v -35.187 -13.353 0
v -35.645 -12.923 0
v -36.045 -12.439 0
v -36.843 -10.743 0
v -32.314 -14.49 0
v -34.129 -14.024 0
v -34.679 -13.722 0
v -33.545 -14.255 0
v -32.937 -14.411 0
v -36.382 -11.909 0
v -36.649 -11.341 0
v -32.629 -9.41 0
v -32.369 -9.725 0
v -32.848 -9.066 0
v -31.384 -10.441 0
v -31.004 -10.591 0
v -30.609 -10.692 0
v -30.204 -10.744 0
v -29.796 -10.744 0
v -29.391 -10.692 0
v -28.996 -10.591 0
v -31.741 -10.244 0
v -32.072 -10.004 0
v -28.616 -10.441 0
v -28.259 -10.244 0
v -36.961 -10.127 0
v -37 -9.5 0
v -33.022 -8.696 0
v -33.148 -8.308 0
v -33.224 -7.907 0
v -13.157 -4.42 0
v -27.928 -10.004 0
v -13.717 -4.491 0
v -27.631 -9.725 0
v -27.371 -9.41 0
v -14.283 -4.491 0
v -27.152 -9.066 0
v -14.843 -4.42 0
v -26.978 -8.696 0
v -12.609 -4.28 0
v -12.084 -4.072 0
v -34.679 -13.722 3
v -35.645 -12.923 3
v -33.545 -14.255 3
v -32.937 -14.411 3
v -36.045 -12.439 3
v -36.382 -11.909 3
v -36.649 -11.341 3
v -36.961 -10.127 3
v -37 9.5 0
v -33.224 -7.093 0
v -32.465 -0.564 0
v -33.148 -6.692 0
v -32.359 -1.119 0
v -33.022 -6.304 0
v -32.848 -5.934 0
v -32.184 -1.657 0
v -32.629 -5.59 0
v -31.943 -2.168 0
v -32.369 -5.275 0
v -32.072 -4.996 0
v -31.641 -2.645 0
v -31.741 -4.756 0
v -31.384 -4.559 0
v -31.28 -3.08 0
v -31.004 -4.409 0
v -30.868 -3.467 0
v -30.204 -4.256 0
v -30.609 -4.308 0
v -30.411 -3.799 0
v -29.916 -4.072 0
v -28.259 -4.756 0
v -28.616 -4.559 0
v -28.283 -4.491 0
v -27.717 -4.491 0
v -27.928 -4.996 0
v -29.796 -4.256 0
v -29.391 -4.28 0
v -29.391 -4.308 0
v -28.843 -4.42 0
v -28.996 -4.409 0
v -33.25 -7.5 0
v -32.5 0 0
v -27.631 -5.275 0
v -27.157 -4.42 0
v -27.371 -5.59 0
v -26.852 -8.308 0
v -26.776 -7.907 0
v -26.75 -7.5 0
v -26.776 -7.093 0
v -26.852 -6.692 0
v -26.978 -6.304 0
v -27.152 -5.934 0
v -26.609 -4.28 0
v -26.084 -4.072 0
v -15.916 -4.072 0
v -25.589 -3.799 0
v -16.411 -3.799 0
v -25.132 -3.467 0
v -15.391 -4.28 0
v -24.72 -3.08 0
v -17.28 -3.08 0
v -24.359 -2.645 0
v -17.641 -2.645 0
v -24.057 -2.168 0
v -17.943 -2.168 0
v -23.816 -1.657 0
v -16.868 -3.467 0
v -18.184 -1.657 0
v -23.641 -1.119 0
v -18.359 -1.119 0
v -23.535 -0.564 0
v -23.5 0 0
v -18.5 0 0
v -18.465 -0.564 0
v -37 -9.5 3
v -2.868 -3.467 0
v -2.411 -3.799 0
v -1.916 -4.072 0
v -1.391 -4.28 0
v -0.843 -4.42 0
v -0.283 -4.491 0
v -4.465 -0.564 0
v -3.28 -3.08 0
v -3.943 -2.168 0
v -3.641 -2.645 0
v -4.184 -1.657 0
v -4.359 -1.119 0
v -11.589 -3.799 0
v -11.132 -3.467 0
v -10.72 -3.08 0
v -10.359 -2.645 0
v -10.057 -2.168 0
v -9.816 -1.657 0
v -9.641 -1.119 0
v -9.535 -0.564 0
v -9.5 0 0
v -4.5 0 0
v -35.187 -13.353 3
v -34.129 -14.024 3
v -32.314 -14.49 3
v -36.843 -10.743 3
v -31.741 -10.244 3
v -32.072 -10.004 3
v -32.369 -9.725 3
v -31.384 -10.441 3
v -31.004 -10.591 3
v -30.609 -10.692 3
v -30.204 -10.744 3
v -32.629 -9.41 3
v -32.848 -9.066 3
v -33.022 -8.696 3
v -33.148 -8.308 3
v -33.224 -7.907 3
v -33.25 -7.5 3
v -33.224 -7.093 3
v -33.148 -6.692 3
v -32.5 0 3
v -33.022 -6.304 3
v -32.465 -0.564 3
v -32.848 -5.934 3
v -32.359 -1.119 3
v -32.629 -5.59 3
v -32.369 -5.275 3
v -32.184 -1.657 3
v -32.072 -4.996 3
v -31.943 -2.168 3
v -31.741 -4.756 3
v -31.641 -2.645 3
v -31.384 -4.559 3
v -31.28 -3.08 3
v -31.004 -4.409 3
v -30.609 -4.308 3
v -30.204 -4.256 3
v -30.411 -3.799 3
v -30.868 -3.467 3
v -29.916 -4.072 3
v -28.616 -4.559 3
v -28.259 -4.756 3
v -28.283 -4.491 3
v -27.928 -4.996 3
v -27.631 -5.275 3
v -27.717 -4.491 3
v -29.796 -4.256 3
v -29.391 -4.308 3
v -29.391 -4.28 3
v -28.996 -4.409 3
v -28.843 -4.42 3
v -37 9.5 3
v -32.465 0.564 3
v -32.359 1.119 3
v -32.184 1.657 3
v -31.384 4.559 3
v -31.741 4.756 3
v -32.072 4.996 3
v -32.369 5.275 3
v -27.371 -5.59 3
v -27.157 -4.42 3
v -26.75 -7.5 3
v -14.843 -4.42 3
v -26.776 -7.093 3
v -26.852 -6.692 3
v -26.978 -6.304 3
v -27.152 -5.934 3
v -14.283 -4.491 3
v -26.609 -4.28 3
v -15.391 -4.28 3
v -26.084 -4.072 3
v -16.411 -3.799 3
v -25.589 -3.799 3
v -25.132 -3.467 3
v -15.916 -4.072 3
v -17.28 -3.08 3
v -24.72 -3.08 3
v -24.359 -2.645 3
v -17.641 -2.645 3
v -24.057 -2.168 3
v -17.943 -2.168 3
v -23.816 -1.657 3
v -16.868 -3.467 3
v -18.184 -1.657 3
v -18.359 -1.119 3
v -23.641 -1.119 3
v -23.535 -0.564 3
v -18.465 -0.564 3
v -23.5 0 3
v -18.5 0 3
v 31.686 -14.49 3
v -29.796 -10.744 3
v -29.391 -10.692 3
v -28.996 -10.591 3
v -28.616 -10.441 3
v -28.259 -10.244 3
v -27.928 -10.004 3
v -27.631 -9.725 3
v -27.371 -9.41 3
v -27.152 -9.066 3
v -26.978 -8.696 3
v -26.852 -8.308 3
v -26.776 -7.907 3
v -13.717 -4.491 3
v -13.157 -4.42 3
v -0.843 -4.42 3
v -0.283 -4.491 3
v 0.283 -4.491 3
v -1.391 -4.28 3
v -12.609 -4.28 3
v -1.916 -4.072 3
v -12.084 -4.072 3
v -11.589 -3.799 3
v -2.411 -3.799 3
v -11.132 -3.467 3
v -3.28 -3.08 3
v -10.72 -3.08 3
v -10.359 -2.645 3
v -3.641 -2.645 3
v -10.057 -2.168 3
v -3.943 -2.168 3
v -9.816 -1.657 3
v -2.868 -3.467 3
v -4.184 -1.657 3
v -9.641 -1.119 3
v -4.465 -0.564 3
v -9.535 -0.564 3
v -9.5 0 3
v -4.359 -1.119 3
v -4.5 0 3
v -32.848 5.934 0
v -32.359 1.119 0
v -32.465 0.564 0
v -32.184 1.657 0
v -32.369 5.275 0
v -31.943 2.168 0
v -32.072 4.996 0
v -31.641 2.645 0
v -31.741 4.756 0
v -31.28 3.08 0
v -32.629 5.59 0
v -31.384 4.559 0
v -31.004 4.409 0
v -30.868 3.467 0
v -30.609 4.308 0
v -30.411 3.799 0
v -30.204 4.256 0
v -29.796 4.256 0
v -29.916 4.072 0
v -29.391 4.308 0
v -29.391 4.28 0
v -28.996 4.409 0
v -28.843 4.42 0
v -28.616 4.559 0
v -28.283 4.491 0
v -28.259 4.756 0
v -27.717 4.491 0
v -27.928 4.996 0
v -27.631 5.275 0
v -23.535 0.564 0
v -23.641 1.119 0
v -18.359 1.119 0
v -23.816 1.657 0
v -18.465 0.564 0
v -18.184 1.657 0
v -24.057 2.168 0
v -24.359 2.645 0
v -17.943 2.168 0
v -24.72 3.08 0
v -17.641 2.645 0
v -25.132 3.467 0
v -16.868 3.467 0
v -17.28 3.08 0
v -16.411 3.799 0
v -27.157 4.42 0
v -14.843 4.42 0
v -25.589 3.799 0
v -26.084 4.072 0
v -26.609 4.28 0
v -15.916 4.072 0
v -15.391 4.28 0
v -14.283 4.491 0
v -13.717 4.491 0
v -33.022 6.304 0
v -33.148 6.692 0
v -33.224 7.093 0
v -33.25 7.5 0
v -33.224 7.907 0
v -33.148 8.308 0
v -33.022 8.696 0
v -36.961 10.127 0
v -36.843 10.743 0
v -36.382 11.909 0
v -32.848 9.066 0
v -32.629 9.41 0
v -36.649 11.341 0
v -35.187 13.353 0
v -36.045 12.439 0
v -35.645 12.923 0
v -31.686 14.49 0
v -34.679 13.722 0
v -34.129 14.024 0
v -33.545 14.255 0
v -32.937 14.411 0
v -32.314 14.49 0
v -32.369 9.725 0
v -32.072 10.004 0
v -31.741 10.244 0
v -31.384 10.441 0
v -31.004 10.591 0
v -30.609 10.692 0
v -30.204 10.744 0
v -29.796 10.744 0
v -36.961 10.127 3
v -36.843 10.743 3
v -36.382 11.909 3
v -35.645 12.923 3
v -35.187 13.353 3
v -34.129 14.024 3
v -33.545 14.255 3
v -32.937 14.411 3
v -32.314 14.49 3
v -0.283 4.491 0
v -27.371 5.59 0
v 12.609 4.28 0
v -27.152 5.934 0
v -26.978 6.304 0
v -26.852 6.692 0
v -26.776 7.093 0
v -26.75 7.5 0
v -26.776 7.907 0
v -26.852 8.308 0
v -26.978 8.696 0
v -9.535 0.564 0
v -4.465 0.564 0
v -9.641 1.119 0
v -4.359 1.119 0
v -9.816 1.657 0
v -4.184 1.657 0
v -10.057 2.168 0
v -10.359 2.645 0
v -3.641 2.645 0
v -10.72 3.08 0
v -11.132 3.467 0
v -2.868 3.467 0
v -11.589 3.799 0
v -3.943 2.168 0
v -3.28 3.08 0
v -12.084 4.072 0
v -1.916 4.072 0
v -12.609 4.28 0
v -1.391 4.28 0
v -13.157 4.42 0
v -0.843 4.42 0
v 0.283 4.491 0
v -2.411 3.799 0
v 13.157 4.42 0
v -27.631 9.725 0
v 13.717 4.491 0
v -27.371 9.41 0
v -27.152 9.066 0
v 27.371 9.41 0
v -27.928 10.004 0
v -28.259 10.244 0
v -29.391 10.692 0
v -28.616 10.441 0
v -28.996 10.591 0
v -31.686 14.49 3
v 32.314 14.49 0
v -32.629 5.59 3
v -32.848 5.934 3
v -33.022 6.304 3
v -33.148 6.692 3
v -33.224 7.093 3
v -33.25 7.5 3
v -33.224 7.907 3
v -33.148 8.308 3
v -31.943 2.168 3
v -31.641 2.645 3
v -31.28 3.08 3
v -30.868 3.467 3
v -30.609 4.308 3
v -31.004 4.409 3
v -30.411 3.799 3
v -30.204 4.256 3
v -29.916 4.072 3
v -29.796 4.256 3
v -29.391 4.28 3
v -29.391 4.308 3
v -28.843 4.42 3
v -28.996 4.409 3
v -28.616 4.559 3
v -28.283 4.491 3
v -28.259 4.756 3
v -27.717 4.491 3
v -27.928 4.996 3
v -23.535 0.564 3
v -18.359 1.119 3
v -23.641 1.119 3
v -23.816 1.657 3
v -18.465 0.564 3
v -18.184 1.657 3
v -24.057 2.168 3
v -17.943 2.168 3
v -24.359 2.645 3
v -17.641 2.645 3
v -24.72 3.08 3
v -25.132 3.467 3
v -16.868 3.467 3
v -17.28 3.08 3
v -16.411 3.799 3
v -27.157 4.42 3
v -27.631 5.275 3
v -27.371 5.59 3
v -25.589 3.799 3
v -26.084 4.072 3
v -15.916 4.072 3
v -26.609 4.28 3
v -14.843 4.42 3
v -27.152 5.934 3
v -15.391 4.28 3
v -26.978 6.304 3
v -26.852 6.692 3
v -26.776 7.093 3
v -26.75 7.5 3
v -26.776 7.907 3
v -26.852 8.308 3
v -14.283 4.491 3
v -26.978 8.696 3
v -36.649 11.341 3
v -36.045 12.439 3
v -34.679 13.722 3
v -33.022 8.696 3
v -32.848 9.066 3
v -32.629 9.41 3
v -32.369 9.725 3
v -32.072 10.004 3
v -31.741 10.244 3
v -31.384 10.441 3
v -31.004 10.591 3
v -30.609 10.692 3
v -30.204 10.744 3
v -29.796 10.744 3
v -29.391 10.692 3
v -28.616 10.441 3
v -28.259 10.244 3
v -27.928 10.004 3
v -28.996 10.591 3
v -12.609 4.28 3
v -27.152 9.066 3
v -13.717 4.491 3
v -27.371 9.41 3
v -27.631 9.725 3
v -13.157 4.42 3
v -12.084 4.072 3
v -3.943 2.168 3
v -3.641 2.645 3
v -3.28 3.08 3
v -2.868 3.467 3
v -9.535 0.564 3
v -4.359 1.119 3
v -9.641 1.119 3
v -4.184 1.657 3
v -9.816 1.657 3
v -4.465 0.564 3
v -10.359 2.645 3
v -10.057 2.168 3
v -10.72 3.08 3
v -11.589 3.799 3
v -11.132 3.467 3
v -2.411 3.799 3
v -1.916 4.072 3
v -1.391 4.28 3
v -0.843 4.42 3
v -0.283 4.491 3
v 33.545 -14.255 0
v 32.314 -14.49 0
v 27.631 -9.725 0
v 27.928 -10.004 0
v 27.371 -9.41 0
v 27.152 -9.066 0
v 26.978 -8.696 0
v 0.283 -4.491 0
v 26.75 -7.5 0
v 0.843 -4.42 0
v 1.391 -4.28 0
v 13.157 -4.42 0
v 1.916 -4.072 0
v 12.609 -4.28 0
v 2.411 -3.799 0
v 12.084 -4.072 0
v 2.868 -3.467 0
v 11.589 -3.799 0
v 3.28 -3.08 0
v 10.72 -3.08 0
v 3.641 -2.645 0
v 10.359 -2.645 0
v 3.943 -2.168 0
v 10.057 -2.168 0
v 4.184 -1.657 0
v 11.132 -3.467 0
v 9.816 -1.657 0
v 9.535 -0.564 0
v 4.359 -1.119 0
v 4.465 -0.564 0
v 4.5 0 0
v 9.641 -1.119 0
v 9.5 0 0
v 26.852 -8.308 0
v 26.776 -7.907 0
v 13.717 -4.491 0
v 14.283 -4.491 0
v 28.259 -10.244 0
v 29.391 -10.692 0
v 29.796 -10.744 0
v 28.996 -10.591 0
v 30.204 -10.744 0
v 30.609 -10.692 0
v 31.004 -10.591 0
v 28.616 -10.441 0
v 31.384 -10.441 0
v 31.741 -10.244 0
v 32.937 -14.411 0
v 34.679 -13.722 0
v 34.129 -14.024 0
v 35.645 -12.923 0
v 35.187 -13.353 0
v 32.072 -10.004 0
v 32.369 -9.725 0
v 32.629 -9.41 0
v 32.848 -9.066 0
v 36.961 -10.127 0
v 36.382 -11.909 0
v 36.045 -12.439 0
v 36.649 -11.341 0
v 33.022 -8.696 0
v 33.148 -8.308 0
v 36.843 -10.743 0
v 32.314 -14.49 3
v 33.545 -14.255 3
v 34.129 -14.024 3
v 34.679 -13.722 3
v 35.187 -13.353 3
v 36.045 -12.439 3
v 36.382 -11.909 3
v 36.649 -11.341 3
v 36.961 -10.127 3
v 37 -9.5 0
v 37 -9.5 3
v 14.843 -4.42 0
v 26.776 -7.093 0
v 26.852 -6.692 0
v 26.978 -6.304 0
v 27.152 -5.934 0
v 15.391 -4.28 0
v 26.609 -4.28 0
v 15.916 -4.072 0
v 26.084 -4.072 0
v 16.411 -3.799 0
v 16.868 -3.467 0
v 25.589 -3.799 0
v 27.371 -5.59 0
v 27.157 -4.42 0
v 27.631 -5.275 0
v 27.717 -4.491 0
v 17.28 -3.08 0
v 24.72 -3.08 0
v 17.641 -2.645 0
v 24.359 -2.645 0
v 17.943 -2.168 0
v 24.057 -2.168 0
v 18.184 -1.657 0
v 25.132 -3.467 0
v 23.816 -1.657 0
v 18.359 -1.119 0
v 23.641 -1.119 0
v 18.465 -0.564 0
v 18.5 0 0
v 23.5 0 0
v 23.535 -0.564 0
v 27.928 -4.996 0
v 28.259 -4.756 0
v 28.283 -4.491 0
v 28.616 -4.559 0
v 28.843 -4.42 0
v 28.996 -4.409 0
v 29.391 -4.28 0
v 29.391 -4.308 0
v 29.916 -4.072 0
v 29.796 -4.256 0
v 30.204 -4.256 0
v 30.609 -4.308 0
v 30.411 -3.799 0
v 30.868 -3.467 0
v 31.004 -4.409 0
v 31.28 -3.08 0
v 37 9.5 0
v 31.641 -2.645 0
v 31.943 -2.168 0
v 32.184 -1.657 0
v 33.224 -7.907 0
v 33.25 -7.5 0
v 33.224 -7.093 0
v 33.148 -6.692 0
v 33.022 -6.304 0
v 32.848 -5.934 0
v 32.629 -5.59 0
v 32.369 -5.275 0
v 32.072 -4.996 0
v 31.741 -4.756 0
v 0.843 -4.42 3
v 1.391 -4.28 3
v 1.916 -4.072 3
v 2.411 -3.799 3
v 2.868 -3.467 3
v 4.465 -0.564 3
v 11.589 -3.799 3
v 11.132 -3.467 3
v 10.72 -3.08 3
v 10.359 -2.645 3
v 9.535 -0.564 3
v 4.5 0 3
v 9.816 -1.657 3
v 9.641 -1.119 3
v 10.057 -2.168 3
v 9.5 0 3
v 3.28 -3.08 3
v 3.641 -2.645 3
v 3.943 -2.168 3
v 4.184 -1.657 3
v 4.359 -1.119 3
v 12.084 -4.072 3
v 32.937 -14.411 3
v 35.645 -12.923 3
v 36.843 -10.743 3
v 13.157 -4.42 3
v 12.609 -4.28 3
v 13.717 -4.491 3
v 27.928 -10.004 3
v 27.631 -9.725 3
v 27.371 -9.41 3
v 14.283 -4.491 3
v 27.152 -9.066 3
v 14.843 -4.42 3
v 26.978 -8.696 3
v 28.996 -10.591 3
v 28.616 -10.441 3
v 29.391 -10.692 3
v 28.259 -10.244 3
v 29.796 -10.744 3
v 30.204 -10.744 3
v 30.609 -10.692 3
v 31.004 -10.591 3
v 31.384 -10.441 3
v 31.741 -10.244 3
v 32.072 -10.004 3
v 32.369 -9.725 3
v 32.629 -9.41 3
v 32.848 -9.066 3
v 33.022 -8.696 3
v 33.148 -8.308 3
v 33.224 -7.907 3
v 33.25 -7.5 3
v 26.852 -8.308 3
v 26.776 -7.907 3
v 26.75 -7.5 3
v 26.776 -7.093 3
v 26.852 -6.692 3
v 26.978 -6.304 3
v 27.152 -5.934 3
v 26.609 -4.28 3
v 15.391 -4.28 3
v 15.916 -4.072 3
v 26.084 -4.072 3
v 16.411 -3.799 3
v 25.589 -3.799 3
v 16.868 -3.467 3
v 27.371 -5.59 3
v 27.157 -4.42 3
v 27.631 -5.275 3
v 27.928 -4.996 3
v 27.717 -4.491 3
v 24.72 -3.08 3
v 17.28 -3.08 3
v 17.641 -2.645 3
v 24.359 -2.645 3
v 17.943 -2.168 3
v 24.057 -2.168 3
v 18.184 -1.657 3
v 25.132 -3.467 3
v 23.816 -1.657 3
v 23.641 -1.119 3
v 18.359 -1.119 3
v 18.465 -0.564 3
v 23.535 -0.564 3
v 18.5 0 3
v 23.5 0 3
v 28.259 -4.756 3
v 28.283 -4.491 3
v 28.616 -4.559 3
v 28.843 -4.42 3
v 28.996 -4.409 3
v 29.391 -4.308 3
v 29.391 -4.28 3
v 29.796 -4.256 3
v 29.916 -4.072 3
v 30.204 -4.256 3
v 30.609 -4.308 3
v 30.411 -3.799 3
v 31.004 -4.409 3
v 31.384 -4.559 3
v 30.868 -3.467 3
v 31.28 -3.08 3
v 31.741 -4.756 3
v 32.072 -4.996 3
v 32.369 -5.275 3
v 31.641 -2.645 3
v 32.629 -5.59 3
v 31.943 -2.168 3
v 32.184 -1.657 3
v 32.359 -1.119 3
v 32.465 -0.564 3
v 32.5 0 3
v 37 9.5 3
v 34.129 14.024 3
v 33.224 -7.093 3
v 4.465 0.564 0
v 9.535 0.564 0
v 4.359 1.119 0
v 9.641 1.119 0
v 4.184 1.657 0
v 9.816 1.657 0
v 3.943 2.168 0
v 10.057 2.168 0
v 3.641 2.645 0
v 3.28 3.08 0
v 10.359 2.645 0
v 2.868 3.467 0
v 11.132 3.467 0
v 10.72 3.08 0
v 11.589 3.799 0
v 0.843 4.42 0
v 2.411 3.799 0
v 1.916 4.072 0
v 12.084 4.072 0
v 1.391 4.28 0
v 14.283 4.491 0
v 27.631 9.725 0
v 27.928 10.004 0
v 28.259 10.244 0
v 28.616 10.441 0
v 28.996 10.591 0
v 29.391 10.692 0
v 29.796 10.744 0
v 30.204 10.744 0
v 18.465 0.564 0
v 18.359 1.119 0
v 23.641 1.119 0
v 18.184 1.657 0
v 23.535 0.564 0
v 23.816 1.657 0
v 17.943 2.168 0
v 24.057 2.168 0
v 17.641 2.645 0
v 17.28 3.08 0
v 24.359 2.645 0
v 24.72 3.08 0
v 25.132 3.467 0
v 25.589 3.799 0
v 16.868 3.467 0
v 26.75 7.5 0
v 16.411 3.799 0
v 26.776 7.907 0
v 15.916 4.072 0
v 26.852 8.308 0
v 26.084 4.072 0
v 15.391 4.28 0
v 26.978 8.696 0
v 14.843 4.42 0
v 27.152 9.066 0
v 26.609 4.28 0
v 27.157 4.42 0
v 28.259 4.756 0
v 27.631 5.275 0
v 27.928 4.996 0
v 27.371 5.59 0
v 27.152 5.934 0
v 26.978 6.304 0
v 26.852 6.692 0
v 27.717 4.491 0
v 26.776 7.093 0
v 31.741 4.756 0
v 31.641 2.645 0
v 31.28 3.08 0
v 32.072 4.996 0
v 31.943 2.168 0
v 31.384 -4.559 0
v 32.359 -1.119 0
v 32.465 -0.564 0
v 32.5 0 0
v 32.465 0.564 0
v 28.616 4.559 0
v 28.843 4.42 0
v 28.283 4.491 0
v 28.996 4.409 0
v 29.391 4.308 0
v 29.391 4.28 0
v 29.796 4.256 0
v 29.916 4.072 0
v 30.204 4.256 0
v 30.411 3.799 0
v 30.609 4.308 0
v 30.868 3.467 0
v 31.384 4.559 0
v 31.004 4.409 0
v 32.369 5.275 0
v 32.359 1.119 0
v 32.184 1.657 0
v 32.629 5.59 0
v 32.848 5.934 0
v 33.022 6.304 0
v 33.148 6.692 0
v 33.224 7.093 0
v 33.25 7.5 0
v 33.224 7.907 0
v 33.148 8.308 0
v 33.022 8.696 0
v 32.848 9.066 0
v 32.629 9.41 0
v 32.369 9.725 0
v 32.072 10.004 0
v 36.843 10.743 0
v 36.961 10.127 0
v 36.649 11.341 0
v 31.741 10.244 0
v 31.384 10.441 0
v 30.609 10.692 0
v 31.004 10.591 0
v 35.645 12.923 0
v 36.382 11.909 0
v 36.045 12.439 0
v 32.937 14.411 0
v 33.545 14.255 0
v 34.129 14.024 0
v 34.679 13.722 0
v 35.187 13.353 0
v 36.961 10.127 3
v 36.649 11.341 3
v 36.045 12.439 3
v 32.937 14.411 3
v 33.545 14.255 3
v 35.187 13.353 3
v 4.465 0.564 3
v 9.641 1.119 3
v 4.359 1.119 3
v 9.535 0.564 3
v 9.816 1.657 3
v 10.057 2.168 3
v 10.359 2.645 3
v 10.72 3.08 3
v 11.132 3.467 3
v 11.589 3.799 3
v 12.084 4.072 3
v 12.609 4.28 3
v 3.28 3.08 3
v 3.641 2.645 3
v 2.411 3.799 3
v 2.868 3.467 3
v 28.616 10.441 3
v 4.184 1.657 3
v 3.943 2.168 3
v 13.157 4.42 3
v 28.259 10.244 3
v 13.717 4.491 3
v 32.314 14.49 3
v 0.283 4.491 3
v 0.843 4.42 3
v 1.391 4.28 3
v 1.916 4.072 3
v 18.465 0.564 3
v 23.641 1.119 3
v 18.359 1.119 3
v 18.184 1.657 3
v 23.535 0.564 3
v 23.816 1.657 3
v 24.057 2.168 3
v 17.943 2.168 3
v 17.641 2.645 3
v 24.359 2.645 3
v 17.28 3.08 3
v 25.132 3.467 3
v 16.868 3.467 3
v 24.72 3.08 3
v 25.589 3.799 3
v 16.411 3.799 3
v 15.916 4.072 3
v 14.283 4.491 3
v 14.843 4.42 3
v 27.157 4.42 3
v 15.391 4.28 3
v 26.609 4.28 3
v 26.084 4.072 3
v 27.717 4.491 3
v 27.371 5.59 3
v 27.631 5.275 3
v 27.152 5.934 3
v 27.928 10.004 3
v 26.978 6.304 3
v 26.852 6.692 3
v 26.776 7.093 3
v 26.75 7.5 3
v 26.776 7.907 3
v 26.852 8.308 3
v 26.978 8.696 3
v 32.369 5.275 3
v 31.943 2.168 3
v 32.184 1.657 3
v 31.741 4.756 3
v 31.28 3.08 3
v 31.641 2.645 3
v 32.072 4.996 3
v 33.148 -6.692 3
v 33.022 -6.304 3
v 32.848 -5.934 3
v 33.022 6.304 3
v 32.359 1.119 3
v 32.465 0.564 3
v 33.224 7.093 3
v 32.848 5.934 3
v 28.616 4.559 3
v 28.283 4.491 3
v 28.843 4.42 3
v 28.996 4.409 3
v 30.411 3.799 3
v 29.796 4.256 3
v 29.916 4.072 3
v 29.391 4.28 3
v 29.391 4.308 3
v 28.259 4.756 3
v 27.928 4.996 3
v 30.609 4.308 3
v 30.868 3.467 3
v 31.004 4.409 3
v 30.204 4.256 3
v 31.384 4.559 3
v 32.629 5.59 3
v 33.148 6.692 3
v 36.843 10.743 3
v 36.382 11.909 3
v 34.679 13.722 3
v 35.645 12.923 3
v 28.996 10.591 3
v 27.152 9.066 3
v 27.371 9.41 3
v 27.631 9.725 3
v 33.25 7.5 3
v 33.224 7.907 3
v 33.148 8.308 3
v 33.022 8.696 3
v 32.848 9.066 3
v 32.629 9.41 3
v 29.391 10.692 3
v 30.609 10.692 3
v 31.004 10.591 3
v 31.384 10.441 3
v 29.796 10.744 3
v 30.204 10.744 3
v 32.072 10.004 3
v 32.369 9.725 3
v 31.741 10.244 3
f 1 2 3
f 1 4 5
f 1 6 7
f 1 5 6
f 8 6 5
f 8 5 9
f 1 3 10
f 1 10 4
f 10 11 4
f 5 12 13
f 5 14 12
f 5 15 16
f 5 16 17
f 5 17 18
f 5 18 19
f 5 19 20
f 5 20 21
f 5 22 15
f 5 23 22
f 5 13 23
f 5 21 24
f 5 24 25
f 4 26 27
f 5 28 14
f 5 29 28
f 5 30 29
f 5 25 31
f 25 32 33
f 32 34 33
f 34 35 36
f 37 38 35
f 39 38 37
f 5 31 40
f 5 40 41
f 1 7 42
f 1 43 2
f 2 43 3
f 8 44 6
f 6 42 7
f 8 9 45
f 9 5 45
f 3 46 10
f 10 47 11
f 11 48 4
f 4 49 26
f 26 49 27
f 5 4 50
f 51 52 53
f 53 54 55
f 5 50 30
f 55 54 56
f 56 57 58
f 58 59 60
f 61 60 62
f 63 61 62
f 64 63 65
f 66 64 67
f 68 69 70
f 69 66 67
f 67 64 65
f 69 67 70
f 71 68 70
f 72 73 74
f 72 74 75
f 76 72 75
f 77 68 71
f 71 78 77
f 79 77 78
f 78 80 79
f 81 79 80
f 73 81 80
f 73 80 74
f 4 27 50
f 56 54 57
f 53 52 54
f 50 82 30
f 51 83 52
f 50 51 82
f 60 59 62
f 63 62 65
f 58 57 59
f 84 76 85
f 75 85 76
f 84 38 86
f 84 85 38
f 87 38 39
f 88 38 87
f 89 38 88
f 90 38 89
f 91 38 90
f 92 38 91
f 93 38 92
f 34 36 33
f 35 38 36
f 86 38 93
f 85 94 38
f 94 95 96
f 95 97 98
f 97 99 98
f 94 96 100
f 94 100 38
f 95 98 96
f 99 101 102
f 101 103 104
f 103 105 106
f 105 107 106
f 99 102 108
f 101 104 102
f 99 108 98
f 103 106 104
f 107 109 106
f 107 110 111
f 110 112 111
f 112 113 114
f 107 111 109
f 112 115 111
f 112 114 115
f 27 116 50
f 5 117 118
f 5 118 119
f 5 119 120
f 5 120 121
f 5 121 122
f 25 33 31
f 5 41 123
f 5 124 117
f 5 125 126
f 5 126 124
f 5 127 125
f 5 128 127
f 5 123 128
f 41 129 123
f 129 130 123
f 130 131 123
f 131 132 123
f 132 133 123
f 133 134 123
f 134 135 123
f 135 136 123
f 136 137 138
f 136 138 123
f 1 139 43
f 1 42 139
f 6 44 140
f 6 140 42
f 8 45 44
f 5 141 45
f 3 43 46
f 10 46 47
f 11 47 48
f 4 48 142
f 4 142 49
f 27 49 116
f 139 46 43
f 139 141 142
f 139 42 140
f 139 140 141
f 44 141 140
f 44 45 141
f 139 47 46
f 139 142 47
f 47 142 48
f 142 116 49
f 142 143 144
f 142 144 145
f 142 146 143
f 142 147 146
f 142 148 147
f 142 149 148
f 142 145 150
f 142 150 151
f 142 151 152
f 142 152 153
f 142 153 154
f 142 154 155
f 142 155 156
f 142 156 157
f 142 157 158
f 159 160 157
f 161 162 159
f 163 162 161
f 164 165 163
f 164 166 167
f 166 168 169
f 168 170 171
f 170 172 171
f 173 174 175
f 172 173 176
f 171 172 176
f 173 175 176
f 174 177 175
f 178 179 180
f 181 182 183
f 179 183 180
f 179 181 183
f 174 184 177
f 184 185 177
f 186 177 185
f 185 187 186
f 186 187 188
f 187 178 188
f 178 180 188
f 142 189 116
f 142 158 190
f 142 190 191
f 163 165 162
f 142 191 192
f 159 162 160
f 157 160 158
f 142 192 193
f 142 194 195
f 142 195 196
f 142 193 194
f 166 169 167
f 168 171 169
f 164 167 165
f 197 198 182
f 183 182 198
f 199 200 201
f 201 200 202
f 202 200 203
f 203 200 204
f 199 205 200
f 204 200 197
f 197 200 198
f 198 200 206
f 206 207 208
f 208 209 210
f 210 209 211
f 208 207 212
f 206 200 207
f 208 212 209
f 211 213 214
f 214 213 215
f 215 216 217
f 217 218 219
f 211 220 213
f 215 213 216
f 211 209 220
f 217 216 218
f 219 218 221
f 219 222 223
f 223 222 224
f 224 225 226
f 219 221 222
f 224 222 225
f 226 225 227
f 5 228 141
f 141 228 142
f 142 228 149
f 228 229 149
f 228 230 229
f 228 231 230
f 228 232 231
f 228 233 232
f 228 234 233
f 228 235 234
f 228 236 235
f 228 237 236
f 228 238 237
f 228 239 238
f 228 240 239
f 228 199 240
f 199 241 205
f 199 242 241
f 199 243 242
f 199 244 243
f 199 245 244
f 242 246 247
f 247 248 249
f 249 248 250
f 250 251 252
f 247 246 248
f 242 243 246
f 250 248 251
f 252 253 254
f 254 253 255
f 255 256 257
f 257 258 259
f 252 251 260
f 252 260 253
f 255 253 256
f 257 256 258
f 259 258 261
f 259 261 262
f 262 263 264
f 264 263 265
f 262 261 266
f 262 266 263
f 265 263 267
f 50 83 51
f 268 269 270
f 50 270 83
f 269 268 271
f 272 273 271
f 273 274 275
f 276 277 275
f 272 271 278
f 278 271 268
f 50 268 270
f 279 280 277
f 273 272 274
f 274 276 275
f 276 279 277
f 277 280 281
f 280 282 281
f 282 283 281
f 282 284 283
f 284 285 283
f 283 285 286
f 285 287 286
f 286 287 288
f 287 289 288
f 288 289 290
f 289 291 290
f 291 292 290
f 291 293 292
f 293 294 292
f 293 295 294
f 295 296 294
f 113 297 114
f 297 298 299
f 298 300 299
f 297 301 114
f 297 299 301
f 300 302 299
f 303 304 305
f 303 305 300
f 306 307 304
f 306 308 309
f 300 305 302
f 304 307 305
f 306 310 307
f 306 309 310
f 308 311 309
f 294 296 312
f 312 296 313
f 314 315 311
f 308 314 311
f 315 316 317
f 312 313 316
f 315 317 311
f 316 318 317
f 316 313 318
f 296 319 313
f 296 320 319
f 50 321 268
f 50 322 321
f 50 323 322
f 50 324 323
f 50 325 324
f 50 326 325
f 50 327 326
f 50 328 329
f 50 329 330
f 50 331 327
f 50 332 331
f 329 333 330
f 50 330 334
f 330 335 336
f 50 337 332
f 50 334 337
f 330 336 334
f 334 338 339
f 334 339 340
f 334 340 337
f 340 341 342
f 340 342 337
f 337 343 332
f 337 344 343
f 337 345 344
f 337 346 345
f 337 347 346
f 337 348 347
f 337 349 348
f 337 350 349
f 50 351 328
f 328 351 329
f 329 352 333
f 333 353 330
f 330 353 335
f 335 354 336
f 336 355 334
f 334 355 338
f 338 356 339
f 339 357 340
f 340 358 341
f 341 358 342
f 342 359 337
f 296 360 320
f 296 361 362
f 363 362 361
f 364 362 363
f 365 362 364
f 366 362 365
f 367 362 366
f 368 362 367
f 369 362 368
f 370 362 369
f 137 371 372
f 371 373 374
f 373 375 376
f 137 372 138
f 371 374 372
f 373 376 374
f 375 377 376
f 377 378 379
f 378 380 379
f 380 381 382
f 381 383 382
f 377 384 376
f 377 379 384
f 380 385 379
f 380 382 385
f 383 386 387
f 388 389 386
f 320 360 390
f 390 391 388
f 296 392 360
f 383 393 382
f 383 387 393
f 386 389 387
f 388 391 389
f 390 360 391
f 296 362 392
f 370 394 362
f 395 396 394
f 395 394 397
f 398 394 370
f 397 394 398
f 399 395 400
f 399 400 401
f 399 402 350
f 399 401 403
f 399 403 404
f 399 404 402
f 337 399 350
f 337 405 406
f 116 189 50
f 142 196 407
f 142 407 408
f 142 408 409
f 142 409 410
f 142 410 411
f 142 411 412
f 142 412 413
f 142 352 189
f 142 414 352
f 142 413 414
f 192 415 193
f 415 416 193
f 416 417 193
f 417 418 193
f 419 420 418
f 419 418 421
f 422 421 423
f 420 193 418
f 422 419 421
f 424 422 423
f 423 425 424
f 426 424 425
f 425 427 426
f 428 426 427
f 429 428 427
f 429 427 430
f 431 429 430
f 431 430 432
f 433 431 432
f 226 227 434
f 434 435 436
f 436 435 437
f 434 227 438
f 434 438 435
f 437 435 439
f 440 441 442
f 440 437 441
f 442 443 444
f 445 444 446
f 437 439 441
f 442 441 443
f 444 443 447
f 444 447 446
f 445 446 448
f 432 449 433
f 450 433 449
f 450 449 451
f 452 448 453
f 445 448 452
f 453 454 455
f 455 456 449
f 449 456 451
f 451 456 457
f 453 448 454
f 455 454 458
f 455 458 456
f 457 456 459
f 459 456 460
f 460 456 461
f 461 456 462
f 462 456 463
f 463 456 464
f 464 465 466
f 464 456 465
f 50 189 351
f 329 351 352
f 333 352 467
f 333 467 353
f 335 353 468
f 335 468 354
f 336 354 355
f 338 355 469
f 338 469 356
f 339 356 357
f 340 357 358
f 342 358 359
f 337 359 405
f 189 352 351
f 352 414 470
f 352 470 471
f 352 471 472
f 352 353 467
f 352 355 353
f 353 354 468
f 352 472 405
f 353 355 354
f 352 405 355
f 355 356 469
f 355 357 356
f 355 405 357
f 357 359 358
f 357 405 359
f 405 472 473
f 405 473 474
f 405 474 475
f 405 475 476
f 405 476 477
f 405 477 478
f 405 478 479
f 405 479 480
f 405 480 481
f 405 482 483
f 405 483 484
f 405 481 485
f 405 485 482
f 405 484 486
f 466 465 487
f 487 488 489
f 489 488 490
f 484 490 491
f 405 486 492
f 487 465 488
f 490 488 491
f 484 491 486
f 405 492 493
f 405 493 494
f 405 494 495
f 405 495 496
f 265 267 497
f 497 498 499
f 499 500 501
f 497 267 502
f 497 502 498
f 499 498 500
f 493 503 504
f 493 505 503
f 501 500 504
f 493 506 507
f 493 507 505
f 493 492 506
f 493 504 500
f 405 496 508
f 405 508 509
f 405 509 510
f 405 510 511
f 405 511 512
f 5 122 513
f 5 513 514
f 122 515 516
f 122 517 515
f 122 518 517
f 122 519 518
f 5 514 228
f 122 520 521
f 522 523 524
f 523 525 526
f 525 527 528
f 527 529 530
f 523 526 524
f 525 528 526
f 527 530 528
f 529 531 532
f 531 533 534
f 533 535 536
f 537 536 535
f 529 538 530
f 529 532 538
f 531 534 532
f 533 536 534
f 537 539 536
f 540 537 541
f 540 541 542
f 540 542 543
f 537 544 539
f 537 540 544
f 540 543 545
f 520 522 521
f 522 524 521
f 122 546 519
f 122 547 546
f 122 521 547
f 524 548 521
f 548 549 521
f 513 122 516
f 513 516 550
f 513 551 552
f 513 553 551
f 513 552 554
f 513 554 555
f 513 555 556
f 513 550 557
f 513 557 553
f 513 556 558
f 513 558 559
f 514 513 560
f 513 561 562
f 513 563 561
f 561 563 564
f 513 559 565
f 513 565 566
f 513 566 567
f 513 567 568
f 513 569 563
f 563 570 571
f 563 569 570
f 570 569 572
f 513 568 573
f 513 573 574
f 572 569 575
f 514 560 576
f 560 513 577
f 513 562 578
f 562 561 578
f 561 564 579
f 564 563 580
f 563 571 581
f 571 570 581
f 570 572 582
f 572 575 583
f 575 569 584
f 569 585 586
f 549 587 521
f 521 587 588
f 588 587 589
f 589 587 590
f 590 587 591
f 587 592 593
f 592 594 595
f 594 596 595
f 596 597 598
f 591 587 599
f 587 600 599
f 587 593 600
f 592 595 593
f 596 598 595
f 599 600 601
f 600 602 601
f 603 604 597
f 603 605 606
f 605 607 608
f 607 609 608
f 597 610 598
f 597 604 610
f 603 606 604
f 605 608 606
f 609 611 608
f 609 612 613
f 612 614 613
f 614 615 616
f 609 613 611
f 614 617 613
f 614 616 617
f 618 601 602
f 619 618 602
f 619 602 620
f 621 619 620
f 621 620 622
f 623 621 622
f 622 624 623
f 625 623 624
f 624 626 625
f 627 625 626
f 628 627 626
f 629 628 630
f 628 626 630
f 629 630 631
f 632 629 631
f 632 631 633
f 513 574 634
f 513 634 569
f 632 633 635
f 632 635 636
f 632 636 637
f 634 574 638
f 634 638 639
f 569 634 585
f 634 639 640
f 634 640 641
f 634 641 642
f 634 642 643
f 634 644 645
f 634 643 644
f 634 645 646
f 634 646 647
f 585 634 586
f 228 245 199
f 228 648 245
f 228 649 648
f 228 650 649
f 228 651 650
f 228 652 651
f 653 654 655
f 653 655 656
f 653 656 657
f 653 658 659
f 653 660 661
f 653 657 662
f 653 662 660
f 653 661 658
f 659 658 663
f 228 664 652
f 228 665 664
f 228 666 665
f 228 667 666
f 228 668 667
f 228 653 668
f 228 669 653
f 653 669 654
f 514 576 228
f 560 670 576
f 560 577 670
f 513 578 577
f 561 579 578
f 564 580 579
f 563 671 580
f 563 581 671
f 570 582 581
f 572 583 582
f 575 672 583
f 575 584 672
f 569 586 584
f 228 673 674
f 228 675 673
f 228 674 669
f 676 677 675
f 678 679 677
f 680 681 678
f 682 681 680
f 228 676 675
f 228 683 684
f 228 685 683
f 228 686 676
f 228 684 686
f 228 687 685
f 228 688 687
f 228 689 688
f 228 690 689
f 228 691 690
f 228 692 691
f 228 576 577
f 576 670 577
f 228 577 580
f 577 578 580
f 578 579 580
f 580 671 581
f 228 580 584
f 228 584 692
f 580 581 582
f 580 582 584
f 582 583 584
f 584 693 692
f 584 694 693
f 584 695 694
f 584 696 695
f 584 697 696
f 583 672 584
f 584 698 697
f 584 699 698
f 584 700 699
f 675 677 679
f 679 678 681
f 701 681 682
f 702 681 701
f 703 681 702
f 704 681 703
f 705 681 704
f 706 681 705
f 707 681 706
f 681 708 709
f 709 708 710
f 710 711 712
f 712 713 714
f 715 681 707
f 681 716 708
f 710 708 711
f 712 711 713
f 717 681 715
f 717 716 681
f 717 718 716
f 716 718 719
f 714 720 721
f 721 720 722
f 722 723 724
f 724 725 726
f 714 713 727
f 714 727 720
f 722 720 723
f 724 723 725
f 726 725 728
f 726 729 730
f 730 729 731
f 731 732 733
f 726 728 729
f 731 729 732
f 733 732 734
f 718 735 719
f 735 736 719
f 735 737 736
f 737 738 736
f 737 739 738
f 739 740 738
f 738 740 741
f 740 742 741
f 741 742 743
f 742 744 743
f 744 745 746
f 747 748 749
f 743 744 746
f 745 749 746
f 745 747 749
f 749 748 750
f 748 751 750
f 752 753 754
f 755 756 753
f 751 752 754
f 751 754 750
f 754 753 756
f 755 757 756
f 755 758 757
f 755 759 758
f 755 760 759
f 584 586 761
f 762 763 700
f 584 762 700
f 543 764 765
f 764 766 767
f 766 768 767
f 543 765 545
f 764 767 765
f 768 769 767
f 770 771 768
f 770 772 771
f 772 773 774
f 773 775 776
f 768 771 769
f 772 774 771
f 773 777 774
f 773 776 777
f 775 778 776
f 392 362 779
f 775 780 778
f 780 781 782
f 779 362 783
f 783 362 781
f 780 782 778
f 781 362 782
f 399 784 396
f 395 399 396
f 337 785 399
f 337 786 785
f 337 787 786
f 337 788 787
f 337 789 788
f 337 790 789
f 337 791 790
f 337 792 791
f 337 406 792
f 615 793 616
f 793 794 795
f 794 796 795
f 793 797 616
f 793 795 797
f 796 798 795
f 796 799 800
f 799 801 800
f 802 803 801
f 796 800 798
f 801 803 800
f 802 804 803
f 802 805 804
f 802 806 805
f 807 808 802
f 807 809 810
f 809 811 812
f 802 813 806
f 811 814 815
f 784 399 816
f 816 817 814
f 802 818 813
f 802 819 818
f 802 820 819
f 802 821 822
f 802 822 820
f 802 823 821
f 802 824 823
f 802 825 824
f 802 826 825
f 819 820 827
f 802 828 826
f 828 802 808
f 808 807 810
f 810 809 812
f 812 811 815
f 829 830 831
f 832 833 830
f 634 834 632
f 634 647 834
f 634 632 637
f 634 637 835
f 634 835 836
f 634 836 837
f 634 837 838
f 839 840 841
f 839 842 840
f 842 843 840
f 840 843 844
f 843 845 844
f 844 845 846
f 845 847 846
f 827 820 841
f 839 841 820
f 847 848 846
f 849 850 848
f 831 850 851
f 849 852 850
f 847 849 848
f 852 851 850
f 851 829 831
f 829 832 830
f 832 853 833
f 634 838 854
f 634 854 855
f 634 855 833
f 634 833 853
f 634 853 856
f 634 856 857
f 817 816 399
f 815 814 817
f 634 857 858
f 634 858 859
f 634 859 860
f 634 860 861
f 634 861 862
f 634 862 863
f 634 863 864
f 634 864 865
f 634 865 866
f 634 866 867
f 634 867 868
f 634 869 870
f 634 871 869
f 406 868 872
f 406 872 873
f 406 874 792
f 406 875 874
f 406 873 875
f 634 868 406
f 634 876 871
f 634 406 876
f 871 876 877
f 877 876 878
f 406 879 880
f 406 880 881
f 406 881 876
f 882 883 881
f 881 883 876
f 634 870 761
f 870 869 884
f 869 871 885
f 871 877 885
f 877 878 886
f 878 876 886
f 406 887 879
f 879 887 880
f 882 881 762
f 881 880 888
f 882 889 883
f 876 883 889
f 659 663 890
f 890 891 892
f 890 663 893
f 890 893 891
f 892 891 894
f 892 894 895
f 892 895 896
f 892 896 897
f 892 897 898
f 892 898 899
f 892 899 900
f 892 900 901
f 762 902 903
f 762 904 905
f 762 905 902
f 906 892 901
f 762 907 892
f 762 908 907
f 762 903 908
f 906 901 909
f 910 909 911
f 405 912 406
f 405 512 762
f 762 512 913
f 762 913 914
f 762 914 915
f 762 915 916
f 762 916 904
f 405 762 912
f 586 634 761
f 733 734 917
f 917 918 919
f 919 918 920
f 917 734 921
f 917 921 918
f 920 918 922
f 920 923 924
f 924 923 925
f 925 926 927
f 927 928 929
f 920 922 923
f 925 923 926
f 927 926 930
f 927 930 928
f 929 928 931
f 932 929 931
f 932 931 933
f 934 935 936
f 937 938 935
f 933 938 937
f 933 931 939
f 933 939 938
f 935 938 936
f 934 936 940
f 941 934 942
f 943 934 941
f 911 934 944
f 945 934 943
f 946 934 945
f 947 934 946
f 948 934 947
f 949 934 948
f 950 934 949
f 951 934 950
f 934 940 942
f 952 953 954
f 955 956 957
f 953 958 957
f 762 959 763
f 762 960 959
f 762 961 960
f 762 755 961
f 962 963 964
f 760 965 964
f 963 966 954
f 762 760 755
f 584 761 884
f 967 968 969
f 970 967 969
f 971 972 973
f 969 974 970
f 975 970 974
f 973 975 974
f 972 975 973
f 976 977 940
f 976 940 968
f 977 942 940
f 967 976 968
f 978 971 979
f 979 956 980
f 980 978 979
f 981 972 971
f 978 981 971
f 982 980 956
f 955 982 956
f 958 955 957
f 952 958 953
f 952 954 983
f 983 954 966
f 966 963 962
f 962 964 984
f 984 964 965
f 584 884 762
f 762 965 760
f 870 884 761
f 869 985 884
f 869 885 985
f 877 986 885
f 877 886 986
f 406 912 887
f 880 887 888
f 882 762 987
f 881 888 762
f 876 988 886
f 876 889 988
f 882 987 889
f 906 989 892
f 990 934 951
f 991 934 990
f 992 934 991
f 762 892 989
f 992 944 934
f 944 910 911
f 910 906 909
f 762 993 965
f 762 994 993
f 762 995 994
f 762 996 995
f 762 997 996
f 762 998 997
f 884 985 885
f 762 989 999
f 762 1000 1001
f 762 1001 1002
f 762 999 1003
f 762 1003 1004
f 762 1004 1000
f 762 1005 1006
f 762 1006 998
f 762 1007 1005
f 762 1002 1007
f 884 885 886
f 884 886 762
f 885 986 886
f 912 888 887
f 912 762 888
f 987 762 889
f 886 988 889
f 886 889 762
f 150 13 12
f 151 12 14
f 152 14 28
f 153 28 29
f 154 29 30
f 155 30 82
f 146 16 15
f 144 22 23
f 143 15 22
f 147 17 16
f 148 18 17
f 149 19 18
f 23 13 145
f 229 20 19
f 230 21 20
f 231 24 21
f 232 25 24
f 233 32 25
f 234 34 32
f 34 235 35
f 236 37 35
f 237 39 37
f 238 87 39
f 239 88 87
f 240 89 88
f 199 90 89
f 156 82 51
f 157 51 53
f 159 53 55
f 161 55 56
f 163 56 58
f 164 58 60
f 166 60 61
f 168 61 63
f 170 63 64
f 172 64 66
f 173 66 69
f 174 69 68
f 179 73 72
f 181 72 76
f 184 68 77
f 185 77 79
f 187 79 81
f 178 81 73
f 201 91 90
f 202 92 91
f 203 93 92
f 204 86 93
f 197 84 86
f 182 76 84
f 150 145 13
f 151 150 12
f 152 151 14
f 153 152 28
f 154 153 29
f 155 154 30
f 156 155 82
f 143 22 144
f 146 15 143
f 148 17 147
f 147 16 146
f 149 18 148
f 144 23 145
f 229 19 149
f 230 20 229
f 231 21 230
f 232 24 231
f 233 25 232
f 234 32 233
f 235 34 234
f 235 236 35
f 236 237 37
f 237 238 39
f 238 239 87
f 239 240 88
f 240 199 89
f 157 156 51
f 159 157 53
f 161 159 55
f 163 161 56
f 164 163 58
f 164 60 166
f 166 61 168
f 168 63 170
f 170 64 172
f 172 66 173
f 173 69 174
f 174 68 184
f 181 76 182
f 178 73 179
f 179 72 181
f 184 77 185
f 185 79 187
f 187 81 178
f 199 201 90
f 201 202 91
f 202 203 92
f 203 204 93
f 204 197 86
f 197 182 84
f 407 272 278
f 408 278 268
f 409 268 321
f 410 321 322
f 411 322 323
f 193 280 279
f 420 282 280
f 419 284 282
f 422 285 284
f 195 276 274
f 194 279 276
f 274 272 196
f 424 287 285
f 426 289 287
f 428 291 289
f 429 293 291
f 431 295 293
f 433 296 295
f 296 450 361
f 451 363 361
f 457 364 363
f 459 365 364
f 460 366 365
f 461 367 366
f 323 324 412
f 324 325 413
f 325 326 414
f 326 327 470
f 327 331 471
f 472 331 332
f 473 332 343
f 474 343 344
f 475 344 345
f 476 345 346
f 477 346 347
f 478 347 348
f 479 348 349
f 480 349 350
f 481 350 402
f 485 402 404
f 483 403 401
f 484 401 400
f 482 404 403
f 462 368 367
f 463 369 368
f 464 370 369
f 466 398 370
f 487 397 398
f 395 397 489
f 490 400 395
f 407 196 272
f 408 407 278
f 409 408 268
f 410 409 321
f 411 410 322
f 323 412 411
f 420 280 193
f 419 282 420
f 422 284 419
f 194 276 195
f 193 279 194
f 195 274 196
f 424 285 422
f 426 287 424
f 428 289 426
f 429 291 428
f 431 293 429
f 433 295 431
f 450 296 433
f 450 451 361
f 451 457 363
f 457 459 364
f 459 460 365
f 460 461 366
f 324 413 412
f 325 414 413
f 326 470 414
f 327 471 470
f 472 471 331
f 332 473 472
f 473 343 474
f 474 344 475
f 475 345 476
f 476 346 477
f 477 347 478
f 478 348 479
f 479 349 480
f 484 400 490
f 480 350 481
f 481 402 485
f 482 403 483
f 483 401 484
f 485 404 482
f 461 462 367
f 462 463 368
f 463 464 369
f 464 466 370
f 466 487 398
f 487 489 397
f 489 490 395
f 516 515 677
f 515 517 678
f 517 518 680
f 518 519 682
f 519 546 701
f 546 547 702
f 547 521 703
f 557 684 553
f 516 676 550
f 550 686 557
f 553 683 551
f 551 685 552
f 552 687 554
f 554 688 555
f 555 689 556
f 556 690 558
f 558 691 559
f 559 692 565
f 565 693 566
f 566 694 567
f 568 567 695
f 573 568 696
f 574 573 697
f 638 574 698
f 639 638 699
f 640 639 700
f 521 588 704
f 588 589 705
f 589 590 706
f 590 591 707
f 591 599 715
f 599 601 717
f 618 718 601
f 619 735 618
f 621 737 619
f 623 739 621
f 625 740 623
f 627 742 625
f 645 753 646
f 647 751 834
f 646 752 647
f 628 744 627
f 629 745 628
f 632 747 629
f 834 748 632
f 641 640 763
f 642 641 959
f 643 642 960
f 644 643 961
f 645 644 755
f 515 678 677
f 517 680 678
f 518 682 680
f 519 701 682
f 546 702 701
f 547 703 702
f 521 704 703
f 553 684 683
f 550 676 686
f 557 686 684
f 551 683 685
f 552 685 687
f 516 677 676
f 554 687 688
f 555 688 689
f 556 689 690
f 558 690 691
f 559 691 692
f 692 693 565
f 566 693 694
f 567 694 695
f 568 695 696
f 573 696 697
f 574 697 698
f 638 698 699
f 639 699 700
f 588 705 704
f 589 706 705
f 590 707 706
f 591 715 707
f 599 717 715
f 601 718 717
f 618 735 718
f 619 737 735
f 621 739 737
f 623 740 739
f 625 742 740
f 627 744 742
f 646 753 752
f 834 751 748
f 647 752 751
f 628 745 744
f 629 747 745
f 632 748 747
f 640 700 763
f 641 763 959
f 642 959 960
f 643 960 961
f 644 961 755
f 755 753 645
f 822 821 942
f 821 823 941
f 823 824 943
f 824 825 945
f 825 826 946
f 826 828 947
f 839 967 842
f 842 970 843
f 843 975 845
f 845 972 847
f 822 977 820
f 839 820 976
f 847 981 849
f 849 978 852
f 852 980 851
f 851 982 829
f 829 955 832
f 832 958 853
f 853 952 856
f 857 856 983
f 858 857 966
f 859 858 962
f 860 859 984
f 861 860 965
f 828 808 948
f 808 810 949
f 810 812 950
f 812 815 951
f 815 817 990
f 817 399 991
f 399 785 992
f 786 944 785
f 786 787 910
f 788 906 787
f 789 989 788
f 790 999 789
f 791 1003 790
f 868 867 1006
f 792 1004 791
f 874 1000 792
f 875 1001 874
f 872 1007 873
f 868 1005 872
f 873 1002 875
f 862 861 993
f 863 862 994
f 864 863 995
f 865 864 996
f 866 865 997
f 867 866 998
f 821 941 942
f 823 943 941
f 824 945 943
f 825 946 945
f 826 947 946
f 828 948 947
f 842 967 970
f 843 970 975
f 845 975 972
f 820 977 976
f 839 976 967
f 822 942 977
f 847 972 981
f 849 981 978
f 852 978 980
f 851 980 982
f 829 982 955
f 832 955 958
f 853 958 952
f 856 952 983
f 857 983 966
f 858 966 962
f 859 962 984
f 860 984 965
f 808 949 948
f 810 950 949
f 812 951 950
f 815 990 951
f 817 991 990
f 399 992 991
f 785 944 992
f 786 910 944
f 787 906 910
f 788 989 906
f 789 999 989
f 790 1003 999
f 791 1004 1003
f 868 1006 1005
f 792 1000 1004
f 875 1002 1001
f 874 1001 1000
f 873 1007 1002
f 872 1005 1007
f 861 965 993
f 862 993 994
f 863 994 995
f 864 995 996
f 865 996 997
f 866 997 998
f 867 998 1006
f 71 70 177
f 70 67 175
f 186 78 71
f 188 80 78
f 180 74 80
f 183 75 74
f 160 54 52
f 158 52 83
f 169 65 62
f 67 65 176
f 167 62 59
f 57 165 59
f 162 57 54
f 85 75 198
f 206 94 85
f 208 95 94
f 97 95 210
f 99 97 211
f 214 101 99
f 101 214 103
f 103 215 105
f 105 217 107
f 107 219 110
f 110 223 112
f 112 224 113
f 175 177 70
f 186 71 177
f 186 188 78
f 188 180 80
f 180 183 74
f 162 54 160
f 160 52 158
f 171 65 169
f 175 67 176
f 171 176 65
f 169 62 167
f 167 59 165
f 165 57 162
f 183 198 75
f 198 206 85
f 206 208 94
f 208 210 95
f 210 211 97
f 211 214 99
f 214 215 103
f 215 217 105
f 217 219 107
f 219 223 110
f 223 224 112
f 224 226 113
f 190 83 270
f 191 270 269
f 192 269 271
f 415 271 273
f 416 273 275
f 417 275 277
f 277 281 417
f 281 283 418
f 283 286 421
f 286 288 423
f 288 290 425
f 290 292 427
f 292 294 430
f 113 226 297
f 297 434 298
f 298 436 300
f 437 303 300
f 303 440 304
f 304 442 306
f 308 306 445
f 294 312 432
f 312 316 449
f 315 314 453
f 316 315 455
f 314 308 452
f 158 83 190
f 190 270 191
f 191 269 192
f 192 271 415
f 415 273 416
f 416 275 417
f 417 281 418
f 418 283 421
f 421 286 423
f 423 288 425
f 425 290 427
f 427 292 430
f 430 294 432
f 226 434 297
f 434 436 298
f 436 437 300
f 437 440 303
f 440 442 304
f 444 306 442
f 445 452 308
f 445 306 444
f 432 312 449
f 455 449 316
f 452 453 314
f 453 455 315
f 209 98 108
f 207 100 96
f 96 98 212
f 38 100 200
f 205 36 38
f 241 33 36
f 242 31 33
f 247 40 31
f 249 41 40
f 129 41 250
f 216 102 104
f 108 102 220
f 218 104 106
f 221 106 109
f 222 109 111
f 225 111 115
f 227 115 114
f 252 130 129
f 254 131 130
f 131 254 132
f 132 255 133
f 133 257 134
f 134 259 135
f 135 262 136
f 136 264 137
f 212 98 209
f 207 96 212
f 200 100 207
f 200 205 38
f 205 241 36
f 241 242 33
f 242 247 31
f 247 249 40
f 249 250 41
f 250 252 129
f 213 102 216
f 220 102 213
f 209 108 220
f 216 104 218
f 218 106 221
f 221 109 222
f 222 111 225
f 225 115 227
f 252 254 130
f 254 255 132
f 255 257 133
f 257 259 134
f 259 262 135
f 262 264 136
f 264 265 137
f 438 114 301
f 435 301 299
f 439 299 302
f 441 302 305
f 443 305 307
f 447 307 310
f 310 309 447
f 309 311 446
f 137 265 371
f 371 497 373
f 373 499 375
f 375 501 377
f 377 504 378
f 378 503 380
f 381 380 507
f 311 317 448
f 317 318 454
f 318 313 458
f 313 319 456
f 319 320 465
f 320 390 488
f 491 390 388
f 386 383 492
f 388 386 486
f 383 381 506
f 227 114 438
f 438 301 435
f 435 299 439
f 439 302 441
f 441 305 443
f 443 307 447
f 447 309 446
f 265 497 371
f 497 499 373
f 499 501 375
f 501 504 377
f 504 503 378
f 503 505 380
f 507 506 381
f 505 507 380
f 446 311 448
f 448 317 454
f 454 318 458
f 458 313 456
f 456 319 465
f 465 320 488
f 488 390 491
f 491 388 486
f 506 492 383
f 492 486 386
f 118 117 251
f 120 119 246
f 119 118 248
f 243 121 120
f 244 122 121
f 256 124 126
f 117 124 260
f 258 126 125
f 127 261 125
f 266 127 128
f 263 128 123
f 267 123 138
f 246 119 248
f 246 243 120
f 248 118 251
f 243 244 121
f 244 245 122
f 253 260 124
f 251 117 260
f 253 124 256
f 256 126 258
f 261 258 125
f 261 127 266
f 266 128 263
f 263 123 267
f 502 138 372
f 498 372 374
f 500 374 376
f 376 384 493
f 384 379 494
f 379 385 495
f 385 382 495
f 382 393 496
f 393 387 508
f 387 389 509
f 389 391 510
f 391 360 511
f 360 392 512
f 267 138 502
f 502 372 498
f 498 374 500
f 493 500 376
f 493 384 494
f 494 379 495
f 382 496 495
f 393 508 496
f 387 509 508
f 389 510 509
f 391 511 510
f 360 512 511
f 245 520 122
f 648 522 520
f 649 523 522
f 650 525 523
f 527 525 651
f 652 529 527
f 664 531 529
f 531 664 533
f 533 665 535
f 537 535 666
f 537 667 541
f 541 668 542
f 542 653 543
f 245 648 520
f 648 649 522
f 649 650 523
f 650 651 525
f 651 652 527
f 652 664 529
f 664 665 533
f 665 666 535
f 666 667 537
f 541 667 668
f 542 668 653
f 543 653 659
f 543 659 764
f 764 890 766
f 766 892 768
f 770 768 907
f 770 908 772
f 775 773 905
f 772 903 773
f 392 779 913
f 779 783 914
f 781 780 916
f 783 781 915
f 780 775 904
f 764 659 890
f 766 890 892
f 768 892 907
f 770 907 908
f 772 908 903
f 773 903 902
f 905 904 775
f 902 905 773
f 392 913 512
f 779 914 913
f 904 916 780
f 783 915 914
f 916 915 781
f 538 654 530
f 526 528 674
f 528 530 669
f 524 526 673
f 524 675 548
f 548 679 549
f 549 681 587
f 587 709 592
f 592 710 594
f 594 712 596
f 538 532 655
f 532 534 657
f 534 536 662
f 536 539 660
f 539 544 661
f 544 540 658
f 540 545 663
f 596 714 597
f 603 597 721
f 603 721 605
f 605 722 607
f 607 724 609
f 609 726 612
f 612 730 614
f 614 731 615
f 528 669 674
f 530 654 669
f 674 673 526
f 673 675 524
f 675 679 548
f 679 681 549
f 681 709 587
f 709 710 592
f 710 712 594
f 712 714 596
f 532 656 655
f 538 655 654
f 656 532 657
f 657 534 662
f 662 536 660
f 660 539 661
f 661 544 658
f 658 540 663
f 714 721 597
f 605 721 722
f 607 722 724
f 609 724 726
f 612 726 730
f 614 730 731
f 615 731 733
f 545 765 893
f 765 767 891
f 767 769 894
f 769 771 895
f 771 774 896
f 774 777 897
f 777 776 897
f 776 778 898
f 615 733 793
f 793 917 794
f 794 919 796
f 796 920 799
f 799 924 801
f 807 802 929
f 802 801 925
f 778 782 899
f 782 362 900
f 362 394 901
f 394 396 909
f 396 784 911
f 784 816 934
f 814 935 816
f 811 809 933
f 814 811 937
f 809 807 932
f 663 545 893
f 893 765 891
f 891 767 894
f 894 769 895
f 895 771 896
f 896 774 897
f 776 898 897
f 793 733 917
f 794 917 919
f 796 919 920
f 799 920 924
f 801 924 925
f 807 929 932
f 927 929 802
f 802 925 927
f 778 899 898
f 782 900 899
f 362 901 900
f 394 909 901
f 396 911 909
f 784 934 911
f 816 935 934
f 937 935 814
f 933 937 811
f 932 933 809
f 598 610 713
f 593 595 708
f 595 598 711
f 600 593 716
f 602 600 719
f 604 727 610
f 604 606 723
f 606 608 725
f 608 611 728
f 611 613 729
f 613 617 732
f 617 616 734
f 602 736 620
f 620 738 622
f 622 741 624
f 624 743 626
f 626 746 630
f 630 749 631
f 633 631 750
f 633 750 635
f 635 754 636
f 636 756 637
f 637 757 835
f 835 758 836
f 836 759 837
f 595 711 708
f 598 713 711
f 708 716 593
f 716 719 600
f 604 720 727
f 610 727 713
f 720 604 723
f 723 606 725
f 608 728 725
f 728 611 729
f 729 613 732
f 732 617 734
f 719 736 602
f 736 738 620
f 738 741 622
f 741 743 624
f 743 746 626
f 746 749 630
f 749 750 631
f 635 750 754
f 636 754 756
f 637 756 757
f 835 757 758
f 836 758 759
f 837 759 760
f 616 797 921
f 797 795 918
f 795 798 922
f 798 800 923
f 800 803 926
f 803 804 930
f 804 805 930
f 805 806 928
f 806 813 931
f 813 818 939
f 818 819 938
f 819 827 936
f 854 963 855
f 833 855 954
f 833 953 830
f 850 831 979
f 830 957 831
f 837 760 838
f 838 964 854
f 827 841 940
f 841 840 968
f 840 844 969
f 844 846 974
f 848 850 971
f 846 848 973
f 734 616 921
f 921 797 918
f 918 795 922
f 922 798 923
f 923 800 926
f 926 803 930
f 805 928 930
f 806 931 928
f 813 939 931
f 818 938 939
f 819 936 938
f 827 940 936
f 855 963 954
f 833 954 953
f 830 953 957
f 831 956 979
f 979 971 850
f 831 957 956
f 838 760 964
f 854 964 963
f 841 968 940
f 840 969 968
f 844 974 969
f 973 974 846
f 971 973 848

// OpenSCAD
$fn = 50;

difference() {
	union() {
		hull() {
			translate(v = [-32.0, 9.5, 0]) {
				cylinder(h = 3, r = 5);
			}
			translate(v = [32.0, 9.5, 0]) {
				cylinder(h = 3, r = 5);
			}
			translate(v = [-32.0, -9.5, 0]) {
				cylinder(h = 3, r = 5);
			}
			translate(v = [32.0, -9.5, 0]) {
				cylinder(h = 3, r = 5);
			}
		}
	}
	union() {
		translate(v = [-30.0, -7.5, -100.0]) {
			cylinder(h = 200, r = 3.25);
		}
		translate(v = [-30.0, 7.5, -100.0]) {
			cylinder(h = 200, r = 3.25);
		}
		translate(v = [30.0, -7.5, -100.0]) {
			cylinder(h = 200, r = 3.25);
		}
		translate(v = [30.0, 7.5, -100.0]) {
			cylinder(h = 200, r = 3.25);
		}
		translate(v = [-30.0, -7.5, -100.0]) {
			cylinder(h = 200, r = 1.8);
		}
		translate(v = [-30.0, 7.5, -100.0]) {
			cylinder(h = 200, r = 1.8);
		}
		translate(v = [30.0, -7.5, -100.0]) {
			cylinder(h = 200, r = 1.8);
		}
		translate(v = [30.0, 7.5, -100.0]) {
			cylinder(h = 200, r = 1.8);
		}
		translate(v = [-28.0, 0, 0.0]) {
			cylinder(h = 3, r = 4.5);
		}
		translate(v = [-14.0, 0, 0.0]) {
			cylinder(h = 3, r = 4.5);
		}
		cylinder(h = 3, r = 4.5);
		translate(v = [14.0, 0, 0.0]) {
			cylinder(h = 3, r = 4.5);
		}
		translate(v = [28.0, 0, 0.0]) {
			cylinder(h = 3, r = 4.5);
		}
	}
}
